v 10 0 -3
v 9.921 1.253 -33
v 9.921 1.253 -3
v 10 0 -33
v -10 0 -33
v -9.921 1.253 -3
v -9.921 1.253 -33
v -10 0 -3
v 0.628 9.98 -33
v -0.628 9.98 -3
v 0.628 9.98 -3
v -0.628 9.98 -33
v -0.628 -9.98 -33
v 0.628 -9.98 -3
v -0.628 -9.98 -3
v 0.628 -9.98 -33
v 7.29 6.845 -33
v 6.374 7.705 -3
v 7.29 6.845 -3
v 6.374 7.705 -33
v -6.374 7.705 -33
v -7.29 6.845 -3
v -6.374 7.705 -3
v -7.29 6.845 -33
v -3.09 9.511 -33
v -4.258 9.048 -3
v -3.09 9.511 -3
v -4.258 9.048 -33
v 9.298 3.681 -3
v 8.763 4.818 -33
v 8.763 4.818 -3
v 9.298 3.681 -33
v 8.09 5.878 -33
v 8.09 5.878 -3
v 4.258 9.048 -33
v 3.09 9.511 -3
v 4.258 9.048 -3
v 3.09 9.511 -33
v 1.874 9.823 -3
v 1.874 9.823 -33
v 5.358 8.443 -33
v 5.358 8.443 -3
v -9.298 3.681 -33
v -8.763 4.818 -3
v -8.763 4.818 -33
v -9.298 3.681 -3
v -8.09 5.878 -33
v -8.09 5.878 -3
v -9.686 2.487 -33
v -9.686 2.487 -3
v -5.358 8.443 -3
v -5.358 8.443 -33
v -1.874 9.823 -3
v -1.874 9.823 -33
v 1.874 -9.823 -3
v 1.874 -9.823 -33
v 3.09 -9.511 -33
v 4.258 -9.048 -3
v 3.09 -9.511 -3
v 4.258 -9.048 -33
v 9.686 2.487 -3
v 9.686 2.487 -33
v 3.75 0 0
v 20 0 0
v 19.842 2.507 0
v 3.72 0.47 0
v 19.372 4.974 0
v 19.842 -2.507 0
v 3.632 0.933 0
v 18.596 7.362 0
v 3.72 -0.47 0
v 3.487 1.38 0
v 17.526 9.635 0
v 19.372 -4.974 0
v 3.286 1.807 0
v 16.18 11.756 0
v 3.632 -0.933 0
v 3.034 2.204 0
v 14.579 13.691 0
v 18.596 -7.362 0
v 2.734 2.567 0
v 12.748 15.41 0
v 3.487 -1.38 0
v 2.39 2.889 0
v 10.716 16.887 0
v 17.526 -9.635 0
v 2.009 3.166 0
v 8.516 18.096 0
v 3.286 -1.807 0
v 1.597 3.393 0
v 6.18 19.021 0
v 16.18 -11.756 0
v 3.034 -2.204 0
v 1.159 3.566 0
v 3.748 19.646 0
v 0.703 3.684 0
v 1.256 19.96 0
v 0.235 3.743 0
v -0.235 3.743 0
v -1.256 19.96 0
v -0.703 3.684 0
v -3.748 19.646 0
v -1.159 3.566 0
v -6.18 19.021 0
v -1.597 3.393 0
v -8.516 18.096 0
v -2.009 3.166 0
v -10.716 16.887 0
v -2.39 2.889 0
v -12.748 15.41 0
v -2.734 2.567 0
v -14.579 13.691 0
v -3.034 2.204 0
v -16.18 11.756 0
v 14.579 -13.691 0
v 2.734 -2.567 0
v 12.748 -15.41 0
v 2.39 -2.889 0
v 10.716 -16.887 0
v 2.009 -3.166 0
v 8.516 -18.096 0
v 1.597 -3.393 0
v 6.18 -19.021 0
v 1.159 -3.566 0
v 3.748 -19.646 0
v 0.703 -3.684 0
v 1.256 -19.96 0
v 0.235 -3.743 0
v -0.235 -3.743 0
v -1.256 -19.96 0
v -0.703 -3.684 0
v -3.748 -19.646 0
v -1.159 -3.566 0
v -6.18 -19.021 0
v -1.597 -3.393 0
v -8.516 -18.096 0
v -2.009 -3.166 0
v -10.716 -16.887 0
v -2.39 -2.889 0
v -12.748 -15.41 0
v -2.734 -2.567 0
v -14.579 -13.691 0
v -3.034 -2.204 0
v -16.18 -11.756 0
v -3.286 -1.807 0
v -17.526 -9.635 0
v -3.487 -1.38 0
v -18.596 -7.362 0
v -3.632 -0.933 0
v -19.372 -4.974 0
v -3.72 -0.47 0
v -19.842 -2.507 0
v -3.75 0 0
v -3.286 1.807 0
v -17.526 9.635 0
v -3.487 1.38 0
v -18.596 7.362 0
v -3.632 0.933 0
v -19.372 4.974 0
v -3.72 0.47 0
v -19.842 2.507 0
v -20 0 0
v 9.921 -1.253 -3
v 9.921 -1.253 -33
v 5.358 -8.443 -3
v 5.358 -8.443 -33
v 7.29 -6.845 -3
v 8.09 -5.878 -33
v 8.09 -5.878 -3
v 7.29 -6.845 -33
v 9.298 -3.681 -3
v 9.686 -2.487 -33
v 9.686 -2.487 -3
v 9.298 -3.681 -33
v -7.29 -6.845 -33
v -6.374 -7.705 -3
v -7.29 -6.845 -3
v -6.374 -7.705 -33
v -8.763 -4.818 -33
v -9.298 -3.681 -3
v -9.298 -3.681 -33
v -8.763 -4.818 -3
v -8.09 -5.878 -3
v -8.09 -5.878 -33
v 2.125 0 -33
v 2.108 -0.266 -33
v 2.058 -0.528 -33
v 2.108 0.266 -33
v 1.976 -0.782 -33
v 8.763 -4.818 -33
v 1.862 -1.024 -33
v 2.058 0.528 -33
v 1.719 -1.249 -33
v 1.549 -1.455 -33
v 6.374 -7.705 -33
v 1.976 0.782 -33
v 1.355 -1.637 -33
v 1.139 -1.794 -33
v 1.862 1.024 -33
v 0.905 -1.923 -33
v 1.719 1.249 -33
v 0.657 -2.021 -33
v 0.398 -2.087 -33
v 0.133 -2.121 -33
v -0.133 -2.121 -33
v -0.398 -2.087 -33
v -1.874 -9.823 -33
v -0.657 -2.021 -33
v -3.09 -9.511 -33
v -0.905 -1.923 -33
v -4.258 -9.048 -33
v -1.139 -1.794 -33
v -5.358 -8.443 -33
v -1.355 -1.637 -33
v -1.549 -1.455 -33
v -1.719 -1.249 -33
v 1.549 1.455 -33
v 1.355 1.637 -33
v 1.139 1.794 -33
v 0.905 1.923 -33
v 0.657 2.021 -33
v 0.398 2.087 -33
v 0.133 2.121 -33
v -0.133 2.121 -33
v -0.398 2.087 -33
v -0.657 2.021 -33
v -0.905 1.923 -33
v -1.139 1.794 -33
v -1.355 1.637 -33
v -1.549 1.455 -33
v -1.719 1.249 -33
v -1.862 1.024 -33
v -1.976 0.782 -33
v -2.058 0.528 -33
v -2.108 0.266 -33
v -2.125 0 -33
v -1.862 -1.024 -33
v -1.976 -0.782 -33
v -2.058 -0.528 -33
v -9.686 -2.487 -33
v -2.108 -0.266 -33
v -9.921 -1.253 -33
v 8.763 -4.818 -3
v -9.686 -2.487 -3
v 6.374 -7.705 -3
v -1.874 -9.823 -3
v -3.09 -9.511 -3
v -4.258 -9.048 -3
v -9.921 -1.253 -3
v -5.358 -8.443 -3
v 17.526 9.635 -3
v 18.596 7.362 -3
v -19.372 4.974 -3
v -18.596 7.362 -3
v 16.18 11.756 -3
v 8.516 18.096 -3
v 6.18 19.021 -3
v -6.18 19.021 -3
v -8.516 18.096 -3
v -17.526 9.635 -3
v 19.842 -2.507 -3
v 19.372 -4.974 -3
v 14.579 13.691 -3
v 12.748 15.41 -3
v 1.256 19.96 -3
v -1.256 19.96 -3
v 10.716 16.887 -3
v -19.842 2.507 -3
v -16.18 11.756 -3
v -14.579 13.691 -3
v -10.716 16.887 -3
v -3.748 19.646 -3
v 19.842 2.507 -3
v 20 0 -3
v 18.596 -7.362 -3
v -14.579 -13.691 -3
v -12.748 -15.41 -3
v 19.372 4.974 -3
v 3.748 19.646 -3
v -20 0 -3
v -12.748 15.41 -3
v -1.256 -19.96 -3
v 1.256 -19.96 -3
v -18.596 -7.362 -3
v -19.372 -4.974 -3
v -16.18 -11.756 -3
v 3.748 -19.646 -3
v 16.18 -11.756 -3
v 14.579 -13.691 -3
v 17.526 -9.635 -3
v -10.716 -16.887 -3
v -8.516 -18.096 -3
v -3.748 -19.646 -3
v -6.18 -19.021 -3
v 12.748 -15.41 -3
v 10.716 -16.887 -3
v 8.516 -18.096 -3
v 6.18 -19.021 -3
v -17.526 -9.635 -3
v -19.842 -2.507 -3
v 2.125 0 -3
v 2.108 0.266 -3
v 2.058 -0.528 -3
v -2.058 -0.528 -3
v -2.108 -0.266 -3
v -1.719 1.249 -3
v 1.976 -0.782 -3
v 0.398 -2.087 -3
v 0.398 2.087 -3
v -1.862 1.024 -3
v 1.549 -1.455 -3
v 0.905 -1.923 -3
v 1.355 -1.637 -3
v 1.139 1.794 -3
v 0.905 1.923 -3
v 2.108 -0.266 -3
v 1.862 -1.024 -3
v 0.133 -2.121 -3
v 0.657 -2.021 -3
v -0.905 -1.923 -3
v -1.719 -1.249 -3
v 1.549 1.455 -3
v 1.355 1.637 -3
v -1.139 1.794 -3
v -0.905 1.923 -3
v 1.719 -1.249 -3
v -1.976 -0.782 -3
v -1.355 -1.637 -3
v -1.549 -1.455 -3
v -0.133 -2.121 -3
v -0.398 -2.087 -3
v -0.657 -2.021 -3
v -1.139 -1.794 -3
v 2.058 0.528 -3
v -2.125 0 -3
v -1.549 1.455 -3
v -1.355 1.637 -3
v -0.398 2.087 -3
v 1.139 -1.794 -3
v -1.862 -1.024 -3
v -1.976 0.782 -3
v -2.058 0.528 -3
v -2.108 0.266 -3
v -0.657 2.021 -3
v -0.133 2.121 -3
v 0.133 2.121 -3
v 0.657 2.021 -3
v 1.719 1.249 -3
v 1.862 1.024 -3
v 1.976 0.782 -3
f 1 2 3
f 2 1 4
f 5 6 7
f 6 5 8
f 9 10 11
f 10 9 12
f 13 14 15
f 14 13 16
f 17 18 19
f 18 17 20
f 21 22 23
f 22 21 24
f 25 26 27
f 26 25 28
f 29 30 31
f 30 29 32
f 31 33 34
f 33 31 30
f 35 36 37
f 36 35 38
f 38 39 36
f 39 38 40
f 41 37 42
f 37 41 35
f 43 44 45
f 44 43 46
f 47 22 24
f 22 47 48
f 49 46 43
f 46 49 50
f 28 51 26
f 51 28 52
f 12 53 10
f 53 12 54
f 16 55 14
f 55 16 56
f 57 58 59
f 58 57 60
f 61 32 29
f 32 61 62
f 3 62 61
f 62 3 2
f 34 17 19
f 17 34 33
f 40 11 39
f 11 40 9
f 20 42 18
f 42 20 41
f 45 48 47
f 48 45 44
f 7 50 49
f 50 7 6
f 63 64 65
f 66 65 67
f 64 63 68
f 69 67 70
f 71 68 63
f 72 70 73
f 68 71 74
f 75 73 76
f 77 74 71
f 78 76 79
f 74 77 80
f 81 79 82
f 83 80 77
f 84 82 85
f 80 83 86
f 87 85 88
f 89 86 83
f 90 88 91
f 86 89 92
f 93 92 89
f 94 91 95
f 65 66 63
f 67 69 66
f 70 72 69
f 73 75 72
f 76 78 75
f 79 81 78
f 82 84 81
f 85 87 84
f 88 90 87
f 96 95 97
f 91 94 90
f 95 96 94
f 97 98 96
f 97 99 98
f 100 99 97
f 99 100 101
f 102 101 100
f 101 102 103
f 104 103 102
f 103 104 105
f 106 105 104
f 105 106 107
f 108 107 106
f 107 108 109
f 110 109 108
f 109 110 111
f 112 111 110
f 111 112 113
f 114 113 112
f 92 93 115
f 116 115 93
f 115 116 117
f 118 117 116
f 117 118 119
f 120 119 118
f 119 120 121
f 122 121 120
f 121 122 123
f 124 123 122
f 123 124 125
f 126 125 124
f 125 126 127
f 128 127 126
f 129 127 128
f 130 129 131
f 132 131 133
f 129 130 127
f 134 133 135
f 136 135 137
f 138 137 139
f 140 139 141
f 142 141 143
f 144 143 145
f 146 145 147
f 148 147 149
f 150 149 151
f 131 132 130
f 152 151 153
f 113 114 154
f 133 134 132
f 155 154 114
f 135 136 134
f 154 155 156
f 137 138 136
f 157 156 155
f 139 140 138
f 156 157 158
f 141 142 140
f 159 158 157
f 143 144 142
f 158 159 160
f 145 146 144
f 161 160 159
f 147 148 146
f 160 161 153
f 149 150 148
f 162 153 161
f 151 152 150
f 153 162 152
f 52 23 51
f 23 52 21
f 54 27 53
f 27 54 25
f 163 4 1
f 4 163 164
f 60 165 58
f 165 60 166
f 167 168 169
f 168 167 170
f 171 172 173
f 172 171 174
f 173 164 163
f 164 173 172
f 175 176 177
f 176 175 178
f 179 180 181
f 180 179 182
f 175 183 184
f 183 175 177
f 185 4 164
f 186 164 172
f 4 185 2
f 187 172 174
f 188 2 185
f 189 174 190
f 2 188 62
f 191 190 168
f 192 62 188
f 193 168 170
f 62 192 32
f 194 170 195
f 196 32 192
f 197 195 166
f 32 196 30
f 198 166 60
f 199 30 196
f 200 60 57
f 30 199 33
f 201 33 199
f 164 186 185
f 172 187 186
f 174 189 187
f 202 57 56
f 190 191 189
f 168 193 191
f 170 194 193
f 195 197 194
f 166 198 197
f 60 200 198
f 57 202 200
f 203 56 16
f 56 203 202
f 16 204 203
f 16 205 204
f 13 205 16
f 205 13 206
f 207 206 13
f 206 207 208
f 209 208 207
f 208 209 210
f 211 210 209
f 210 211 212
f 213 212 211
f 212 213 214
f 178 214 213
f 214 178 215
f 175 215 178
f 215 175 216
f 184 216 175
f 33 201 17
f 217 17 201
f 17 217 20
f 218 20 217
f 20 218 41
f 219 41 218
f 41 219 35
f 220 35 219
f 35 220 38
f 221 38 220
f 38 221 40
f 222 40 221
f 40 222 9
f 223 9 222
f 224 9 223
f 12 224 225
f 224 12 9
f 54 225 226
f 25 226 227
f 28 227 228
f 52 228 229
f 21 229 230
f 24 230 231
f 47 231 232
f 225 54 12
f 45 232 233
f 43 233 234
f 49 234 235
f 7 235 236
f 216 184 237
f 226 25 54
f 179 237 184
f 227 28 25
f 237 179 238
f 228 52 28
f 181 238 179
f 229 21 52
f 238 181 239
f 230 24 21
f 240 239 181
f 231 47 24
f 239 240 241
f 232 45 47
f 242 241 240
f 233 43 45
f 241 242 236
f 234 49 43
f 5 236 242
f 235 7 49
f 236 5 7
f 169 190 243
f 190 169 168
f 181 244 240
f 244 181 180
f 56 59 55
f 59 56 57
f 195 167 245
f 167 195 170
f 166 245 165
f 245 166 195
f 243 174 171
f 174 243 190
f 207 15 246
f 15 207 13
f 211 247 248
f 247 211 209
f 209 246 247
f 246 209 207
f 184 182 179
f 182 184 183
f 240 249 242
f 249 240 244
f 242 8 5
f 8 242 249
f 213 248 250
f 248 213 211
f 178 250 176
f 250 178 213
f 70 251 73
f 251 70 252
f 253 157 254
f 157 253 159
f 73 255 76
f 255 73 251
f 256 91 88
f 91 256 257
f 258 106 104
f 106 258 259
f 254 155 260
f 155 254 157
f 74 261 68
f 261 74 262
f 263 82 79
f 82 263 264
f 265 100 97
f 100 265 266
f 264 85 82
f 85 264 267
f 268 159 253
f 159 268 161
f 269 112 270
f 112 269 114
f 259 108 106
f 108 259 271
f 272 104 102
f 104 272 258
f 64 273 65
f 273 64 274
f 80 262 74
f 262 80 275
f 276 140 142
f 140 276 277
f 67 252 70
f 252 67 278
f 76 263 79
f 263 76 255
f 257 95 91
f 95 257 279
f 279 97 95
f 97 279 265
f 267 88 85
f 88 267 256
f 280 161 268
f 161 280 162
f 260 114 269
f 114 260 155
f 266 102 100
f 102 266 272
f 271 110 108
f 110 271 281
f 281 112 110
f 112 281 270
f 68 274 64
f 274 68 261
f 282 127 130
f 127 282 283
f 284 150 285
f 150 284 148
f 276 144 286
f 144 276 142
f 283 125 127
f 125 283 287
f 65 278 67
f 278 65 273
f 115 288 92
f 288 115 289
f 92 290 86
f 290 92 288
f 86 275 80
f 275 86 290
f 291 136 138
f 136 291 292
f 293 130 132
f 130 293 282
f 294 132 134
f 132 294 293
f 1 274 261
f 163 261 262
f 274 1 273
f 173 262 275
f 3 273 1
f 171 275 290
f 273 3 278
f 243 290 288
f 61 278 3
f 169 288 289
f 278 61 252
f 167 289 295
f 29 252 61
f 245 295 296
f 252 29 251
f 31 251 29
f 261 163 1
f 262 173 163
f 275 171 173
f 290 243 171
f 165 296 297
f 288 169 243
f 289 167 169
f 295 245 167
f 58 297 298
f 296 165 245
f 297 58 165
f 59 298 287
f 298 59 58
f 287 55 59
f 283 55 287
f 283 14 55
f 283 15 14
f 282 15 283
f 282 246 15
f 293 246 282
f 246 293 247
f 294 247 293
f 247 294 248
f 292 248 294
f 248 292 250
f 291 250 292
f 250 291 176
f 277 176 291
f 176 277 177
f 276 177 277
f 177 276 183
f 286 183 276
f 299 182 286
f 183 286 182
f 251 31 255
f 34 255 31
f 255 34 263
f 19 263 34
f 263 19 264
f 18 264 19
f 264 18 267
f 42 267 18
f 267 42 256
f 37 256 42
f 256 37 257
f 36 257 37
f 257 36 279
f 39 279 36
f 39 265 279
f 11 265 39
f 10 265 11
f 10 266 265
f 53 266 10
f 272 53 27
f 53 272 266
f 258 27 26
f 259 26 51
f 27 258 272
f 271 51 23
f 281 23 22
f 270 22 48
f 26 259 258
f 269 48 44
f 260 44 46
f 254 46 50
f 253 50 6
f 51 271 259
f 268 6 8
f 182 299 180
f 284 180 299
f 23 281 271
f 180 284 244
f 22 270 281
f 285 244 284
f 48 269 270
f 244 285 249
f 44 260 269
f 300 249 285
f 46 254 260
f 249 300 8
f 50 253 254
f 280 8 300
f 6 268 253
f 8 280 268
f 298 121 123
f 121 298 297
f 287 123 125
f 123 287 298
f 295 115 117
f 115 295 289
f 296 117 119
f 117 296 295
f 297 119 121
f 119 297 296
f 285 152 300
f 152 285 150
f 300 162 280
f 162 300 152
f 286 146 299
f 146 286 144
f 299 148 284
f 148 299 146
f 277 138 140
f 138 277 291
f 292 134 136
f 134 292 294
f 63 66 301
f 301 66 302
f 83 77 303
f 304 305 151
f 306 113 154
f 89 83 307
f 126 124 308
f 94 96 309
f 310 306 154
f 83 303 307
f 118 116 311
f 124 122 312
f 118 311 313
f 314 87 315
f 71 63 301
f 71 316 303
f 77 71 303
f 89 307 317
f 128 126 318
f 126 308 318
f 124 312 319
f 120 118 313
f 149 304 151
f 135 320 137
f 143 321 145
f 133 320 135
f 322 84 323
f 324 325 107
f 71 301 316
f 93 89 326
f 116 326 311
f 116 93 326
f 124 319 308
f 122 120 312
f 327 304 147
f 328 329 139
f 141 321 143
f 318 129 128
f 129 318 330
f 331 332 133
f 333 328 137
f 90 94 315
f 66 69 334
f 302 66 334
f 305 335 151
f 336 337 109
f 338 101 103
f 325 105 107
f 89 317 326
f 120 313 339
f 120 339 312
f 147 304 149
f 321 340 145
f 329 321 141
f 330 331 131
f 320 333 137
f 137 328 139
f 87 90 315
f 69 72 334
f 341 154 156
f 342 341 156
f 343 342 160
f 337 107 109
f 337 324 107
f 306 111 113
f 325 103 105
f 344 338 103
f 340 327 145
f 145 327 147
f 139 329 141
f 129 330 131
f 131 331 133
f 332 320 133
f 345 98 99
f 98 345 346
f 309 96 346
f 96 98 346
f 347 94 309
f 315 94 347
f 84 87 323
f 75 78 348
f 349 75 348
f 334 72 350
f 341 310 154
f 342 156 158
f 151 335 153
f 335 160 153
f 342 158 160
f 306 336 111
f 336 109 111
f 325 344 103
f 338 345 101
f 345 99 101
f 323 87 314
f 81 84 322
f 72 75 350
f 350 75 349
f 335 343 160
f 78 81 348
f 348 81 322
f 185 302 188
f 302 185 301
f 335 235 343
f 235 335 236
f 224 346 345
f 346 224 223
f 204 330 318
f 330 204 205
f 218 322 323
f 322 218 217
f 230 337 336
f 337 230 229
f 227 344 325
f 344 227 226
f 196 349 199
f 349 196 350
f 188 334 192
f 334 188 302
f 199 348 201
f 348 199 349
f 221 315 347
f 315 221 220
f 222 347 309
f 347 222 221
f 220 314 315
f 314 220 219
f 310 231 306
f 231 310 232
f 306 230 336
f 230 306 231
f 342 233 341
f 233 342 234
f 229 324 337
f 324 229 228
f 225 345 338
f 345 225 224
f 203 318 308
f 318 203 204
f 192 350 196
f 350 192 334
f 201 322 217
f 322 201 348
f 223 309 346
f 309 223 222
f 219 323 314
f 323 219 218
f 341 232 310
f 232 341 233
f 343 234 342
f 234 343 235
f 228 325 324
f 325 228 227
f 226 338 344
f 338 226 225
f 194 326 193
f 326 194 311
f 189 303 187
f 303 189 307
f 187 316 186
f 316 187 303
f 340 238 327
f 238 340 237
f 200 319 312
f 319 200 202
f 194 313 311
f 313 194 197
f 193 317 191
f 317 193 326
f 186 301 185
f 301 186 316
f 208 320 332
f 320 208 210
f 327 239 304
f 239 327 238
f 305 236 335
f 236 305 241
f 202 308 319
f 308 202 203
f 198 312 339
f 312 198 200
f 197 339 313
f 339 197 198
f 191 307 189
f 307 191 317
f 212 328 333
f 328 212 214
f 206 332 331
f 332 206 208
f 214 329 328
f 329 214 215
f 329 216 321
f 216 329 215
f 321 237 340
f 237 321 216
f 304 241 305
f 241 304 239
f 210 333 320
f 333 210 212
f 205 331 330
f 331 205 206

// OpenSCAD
$fn = 50;


difference() {
	union() {
		translate(v = [0, 0, -33.0000000000]) {
			cylinder(h = 33, r = 10.0000000000);
		}
		translate(v = [0, 0, -3.0000000000]) {
			cylinder(h = 3, r = 20.0000000000);
		}
	}
	union() {
		translate(v = [0, 0, 0]) {
			rotate(a = [0, 0, 0]) {
				difference() {
					union() {
						#translate(v = [0, 0, -33.0000000000]) {
							cylinder(h = 33, r = 2.0000000000);
						}
						#translate(v = [0, 0, -3]) {
							cylinder(h = 3, r1 = 2.1250000000, r2 = 3.7500000000);
						}
						#translate(v = [0, 0, -33.0000000000]) {
							cylinder(h = 33, r = 2.1250000000);
						}
						#translate(v = [0, 0, -33.0000000000]) {
							cylinder(h = 33, r = 2.0000000000);
						}
					}
					union();
				}
			}
		}
	}
}
